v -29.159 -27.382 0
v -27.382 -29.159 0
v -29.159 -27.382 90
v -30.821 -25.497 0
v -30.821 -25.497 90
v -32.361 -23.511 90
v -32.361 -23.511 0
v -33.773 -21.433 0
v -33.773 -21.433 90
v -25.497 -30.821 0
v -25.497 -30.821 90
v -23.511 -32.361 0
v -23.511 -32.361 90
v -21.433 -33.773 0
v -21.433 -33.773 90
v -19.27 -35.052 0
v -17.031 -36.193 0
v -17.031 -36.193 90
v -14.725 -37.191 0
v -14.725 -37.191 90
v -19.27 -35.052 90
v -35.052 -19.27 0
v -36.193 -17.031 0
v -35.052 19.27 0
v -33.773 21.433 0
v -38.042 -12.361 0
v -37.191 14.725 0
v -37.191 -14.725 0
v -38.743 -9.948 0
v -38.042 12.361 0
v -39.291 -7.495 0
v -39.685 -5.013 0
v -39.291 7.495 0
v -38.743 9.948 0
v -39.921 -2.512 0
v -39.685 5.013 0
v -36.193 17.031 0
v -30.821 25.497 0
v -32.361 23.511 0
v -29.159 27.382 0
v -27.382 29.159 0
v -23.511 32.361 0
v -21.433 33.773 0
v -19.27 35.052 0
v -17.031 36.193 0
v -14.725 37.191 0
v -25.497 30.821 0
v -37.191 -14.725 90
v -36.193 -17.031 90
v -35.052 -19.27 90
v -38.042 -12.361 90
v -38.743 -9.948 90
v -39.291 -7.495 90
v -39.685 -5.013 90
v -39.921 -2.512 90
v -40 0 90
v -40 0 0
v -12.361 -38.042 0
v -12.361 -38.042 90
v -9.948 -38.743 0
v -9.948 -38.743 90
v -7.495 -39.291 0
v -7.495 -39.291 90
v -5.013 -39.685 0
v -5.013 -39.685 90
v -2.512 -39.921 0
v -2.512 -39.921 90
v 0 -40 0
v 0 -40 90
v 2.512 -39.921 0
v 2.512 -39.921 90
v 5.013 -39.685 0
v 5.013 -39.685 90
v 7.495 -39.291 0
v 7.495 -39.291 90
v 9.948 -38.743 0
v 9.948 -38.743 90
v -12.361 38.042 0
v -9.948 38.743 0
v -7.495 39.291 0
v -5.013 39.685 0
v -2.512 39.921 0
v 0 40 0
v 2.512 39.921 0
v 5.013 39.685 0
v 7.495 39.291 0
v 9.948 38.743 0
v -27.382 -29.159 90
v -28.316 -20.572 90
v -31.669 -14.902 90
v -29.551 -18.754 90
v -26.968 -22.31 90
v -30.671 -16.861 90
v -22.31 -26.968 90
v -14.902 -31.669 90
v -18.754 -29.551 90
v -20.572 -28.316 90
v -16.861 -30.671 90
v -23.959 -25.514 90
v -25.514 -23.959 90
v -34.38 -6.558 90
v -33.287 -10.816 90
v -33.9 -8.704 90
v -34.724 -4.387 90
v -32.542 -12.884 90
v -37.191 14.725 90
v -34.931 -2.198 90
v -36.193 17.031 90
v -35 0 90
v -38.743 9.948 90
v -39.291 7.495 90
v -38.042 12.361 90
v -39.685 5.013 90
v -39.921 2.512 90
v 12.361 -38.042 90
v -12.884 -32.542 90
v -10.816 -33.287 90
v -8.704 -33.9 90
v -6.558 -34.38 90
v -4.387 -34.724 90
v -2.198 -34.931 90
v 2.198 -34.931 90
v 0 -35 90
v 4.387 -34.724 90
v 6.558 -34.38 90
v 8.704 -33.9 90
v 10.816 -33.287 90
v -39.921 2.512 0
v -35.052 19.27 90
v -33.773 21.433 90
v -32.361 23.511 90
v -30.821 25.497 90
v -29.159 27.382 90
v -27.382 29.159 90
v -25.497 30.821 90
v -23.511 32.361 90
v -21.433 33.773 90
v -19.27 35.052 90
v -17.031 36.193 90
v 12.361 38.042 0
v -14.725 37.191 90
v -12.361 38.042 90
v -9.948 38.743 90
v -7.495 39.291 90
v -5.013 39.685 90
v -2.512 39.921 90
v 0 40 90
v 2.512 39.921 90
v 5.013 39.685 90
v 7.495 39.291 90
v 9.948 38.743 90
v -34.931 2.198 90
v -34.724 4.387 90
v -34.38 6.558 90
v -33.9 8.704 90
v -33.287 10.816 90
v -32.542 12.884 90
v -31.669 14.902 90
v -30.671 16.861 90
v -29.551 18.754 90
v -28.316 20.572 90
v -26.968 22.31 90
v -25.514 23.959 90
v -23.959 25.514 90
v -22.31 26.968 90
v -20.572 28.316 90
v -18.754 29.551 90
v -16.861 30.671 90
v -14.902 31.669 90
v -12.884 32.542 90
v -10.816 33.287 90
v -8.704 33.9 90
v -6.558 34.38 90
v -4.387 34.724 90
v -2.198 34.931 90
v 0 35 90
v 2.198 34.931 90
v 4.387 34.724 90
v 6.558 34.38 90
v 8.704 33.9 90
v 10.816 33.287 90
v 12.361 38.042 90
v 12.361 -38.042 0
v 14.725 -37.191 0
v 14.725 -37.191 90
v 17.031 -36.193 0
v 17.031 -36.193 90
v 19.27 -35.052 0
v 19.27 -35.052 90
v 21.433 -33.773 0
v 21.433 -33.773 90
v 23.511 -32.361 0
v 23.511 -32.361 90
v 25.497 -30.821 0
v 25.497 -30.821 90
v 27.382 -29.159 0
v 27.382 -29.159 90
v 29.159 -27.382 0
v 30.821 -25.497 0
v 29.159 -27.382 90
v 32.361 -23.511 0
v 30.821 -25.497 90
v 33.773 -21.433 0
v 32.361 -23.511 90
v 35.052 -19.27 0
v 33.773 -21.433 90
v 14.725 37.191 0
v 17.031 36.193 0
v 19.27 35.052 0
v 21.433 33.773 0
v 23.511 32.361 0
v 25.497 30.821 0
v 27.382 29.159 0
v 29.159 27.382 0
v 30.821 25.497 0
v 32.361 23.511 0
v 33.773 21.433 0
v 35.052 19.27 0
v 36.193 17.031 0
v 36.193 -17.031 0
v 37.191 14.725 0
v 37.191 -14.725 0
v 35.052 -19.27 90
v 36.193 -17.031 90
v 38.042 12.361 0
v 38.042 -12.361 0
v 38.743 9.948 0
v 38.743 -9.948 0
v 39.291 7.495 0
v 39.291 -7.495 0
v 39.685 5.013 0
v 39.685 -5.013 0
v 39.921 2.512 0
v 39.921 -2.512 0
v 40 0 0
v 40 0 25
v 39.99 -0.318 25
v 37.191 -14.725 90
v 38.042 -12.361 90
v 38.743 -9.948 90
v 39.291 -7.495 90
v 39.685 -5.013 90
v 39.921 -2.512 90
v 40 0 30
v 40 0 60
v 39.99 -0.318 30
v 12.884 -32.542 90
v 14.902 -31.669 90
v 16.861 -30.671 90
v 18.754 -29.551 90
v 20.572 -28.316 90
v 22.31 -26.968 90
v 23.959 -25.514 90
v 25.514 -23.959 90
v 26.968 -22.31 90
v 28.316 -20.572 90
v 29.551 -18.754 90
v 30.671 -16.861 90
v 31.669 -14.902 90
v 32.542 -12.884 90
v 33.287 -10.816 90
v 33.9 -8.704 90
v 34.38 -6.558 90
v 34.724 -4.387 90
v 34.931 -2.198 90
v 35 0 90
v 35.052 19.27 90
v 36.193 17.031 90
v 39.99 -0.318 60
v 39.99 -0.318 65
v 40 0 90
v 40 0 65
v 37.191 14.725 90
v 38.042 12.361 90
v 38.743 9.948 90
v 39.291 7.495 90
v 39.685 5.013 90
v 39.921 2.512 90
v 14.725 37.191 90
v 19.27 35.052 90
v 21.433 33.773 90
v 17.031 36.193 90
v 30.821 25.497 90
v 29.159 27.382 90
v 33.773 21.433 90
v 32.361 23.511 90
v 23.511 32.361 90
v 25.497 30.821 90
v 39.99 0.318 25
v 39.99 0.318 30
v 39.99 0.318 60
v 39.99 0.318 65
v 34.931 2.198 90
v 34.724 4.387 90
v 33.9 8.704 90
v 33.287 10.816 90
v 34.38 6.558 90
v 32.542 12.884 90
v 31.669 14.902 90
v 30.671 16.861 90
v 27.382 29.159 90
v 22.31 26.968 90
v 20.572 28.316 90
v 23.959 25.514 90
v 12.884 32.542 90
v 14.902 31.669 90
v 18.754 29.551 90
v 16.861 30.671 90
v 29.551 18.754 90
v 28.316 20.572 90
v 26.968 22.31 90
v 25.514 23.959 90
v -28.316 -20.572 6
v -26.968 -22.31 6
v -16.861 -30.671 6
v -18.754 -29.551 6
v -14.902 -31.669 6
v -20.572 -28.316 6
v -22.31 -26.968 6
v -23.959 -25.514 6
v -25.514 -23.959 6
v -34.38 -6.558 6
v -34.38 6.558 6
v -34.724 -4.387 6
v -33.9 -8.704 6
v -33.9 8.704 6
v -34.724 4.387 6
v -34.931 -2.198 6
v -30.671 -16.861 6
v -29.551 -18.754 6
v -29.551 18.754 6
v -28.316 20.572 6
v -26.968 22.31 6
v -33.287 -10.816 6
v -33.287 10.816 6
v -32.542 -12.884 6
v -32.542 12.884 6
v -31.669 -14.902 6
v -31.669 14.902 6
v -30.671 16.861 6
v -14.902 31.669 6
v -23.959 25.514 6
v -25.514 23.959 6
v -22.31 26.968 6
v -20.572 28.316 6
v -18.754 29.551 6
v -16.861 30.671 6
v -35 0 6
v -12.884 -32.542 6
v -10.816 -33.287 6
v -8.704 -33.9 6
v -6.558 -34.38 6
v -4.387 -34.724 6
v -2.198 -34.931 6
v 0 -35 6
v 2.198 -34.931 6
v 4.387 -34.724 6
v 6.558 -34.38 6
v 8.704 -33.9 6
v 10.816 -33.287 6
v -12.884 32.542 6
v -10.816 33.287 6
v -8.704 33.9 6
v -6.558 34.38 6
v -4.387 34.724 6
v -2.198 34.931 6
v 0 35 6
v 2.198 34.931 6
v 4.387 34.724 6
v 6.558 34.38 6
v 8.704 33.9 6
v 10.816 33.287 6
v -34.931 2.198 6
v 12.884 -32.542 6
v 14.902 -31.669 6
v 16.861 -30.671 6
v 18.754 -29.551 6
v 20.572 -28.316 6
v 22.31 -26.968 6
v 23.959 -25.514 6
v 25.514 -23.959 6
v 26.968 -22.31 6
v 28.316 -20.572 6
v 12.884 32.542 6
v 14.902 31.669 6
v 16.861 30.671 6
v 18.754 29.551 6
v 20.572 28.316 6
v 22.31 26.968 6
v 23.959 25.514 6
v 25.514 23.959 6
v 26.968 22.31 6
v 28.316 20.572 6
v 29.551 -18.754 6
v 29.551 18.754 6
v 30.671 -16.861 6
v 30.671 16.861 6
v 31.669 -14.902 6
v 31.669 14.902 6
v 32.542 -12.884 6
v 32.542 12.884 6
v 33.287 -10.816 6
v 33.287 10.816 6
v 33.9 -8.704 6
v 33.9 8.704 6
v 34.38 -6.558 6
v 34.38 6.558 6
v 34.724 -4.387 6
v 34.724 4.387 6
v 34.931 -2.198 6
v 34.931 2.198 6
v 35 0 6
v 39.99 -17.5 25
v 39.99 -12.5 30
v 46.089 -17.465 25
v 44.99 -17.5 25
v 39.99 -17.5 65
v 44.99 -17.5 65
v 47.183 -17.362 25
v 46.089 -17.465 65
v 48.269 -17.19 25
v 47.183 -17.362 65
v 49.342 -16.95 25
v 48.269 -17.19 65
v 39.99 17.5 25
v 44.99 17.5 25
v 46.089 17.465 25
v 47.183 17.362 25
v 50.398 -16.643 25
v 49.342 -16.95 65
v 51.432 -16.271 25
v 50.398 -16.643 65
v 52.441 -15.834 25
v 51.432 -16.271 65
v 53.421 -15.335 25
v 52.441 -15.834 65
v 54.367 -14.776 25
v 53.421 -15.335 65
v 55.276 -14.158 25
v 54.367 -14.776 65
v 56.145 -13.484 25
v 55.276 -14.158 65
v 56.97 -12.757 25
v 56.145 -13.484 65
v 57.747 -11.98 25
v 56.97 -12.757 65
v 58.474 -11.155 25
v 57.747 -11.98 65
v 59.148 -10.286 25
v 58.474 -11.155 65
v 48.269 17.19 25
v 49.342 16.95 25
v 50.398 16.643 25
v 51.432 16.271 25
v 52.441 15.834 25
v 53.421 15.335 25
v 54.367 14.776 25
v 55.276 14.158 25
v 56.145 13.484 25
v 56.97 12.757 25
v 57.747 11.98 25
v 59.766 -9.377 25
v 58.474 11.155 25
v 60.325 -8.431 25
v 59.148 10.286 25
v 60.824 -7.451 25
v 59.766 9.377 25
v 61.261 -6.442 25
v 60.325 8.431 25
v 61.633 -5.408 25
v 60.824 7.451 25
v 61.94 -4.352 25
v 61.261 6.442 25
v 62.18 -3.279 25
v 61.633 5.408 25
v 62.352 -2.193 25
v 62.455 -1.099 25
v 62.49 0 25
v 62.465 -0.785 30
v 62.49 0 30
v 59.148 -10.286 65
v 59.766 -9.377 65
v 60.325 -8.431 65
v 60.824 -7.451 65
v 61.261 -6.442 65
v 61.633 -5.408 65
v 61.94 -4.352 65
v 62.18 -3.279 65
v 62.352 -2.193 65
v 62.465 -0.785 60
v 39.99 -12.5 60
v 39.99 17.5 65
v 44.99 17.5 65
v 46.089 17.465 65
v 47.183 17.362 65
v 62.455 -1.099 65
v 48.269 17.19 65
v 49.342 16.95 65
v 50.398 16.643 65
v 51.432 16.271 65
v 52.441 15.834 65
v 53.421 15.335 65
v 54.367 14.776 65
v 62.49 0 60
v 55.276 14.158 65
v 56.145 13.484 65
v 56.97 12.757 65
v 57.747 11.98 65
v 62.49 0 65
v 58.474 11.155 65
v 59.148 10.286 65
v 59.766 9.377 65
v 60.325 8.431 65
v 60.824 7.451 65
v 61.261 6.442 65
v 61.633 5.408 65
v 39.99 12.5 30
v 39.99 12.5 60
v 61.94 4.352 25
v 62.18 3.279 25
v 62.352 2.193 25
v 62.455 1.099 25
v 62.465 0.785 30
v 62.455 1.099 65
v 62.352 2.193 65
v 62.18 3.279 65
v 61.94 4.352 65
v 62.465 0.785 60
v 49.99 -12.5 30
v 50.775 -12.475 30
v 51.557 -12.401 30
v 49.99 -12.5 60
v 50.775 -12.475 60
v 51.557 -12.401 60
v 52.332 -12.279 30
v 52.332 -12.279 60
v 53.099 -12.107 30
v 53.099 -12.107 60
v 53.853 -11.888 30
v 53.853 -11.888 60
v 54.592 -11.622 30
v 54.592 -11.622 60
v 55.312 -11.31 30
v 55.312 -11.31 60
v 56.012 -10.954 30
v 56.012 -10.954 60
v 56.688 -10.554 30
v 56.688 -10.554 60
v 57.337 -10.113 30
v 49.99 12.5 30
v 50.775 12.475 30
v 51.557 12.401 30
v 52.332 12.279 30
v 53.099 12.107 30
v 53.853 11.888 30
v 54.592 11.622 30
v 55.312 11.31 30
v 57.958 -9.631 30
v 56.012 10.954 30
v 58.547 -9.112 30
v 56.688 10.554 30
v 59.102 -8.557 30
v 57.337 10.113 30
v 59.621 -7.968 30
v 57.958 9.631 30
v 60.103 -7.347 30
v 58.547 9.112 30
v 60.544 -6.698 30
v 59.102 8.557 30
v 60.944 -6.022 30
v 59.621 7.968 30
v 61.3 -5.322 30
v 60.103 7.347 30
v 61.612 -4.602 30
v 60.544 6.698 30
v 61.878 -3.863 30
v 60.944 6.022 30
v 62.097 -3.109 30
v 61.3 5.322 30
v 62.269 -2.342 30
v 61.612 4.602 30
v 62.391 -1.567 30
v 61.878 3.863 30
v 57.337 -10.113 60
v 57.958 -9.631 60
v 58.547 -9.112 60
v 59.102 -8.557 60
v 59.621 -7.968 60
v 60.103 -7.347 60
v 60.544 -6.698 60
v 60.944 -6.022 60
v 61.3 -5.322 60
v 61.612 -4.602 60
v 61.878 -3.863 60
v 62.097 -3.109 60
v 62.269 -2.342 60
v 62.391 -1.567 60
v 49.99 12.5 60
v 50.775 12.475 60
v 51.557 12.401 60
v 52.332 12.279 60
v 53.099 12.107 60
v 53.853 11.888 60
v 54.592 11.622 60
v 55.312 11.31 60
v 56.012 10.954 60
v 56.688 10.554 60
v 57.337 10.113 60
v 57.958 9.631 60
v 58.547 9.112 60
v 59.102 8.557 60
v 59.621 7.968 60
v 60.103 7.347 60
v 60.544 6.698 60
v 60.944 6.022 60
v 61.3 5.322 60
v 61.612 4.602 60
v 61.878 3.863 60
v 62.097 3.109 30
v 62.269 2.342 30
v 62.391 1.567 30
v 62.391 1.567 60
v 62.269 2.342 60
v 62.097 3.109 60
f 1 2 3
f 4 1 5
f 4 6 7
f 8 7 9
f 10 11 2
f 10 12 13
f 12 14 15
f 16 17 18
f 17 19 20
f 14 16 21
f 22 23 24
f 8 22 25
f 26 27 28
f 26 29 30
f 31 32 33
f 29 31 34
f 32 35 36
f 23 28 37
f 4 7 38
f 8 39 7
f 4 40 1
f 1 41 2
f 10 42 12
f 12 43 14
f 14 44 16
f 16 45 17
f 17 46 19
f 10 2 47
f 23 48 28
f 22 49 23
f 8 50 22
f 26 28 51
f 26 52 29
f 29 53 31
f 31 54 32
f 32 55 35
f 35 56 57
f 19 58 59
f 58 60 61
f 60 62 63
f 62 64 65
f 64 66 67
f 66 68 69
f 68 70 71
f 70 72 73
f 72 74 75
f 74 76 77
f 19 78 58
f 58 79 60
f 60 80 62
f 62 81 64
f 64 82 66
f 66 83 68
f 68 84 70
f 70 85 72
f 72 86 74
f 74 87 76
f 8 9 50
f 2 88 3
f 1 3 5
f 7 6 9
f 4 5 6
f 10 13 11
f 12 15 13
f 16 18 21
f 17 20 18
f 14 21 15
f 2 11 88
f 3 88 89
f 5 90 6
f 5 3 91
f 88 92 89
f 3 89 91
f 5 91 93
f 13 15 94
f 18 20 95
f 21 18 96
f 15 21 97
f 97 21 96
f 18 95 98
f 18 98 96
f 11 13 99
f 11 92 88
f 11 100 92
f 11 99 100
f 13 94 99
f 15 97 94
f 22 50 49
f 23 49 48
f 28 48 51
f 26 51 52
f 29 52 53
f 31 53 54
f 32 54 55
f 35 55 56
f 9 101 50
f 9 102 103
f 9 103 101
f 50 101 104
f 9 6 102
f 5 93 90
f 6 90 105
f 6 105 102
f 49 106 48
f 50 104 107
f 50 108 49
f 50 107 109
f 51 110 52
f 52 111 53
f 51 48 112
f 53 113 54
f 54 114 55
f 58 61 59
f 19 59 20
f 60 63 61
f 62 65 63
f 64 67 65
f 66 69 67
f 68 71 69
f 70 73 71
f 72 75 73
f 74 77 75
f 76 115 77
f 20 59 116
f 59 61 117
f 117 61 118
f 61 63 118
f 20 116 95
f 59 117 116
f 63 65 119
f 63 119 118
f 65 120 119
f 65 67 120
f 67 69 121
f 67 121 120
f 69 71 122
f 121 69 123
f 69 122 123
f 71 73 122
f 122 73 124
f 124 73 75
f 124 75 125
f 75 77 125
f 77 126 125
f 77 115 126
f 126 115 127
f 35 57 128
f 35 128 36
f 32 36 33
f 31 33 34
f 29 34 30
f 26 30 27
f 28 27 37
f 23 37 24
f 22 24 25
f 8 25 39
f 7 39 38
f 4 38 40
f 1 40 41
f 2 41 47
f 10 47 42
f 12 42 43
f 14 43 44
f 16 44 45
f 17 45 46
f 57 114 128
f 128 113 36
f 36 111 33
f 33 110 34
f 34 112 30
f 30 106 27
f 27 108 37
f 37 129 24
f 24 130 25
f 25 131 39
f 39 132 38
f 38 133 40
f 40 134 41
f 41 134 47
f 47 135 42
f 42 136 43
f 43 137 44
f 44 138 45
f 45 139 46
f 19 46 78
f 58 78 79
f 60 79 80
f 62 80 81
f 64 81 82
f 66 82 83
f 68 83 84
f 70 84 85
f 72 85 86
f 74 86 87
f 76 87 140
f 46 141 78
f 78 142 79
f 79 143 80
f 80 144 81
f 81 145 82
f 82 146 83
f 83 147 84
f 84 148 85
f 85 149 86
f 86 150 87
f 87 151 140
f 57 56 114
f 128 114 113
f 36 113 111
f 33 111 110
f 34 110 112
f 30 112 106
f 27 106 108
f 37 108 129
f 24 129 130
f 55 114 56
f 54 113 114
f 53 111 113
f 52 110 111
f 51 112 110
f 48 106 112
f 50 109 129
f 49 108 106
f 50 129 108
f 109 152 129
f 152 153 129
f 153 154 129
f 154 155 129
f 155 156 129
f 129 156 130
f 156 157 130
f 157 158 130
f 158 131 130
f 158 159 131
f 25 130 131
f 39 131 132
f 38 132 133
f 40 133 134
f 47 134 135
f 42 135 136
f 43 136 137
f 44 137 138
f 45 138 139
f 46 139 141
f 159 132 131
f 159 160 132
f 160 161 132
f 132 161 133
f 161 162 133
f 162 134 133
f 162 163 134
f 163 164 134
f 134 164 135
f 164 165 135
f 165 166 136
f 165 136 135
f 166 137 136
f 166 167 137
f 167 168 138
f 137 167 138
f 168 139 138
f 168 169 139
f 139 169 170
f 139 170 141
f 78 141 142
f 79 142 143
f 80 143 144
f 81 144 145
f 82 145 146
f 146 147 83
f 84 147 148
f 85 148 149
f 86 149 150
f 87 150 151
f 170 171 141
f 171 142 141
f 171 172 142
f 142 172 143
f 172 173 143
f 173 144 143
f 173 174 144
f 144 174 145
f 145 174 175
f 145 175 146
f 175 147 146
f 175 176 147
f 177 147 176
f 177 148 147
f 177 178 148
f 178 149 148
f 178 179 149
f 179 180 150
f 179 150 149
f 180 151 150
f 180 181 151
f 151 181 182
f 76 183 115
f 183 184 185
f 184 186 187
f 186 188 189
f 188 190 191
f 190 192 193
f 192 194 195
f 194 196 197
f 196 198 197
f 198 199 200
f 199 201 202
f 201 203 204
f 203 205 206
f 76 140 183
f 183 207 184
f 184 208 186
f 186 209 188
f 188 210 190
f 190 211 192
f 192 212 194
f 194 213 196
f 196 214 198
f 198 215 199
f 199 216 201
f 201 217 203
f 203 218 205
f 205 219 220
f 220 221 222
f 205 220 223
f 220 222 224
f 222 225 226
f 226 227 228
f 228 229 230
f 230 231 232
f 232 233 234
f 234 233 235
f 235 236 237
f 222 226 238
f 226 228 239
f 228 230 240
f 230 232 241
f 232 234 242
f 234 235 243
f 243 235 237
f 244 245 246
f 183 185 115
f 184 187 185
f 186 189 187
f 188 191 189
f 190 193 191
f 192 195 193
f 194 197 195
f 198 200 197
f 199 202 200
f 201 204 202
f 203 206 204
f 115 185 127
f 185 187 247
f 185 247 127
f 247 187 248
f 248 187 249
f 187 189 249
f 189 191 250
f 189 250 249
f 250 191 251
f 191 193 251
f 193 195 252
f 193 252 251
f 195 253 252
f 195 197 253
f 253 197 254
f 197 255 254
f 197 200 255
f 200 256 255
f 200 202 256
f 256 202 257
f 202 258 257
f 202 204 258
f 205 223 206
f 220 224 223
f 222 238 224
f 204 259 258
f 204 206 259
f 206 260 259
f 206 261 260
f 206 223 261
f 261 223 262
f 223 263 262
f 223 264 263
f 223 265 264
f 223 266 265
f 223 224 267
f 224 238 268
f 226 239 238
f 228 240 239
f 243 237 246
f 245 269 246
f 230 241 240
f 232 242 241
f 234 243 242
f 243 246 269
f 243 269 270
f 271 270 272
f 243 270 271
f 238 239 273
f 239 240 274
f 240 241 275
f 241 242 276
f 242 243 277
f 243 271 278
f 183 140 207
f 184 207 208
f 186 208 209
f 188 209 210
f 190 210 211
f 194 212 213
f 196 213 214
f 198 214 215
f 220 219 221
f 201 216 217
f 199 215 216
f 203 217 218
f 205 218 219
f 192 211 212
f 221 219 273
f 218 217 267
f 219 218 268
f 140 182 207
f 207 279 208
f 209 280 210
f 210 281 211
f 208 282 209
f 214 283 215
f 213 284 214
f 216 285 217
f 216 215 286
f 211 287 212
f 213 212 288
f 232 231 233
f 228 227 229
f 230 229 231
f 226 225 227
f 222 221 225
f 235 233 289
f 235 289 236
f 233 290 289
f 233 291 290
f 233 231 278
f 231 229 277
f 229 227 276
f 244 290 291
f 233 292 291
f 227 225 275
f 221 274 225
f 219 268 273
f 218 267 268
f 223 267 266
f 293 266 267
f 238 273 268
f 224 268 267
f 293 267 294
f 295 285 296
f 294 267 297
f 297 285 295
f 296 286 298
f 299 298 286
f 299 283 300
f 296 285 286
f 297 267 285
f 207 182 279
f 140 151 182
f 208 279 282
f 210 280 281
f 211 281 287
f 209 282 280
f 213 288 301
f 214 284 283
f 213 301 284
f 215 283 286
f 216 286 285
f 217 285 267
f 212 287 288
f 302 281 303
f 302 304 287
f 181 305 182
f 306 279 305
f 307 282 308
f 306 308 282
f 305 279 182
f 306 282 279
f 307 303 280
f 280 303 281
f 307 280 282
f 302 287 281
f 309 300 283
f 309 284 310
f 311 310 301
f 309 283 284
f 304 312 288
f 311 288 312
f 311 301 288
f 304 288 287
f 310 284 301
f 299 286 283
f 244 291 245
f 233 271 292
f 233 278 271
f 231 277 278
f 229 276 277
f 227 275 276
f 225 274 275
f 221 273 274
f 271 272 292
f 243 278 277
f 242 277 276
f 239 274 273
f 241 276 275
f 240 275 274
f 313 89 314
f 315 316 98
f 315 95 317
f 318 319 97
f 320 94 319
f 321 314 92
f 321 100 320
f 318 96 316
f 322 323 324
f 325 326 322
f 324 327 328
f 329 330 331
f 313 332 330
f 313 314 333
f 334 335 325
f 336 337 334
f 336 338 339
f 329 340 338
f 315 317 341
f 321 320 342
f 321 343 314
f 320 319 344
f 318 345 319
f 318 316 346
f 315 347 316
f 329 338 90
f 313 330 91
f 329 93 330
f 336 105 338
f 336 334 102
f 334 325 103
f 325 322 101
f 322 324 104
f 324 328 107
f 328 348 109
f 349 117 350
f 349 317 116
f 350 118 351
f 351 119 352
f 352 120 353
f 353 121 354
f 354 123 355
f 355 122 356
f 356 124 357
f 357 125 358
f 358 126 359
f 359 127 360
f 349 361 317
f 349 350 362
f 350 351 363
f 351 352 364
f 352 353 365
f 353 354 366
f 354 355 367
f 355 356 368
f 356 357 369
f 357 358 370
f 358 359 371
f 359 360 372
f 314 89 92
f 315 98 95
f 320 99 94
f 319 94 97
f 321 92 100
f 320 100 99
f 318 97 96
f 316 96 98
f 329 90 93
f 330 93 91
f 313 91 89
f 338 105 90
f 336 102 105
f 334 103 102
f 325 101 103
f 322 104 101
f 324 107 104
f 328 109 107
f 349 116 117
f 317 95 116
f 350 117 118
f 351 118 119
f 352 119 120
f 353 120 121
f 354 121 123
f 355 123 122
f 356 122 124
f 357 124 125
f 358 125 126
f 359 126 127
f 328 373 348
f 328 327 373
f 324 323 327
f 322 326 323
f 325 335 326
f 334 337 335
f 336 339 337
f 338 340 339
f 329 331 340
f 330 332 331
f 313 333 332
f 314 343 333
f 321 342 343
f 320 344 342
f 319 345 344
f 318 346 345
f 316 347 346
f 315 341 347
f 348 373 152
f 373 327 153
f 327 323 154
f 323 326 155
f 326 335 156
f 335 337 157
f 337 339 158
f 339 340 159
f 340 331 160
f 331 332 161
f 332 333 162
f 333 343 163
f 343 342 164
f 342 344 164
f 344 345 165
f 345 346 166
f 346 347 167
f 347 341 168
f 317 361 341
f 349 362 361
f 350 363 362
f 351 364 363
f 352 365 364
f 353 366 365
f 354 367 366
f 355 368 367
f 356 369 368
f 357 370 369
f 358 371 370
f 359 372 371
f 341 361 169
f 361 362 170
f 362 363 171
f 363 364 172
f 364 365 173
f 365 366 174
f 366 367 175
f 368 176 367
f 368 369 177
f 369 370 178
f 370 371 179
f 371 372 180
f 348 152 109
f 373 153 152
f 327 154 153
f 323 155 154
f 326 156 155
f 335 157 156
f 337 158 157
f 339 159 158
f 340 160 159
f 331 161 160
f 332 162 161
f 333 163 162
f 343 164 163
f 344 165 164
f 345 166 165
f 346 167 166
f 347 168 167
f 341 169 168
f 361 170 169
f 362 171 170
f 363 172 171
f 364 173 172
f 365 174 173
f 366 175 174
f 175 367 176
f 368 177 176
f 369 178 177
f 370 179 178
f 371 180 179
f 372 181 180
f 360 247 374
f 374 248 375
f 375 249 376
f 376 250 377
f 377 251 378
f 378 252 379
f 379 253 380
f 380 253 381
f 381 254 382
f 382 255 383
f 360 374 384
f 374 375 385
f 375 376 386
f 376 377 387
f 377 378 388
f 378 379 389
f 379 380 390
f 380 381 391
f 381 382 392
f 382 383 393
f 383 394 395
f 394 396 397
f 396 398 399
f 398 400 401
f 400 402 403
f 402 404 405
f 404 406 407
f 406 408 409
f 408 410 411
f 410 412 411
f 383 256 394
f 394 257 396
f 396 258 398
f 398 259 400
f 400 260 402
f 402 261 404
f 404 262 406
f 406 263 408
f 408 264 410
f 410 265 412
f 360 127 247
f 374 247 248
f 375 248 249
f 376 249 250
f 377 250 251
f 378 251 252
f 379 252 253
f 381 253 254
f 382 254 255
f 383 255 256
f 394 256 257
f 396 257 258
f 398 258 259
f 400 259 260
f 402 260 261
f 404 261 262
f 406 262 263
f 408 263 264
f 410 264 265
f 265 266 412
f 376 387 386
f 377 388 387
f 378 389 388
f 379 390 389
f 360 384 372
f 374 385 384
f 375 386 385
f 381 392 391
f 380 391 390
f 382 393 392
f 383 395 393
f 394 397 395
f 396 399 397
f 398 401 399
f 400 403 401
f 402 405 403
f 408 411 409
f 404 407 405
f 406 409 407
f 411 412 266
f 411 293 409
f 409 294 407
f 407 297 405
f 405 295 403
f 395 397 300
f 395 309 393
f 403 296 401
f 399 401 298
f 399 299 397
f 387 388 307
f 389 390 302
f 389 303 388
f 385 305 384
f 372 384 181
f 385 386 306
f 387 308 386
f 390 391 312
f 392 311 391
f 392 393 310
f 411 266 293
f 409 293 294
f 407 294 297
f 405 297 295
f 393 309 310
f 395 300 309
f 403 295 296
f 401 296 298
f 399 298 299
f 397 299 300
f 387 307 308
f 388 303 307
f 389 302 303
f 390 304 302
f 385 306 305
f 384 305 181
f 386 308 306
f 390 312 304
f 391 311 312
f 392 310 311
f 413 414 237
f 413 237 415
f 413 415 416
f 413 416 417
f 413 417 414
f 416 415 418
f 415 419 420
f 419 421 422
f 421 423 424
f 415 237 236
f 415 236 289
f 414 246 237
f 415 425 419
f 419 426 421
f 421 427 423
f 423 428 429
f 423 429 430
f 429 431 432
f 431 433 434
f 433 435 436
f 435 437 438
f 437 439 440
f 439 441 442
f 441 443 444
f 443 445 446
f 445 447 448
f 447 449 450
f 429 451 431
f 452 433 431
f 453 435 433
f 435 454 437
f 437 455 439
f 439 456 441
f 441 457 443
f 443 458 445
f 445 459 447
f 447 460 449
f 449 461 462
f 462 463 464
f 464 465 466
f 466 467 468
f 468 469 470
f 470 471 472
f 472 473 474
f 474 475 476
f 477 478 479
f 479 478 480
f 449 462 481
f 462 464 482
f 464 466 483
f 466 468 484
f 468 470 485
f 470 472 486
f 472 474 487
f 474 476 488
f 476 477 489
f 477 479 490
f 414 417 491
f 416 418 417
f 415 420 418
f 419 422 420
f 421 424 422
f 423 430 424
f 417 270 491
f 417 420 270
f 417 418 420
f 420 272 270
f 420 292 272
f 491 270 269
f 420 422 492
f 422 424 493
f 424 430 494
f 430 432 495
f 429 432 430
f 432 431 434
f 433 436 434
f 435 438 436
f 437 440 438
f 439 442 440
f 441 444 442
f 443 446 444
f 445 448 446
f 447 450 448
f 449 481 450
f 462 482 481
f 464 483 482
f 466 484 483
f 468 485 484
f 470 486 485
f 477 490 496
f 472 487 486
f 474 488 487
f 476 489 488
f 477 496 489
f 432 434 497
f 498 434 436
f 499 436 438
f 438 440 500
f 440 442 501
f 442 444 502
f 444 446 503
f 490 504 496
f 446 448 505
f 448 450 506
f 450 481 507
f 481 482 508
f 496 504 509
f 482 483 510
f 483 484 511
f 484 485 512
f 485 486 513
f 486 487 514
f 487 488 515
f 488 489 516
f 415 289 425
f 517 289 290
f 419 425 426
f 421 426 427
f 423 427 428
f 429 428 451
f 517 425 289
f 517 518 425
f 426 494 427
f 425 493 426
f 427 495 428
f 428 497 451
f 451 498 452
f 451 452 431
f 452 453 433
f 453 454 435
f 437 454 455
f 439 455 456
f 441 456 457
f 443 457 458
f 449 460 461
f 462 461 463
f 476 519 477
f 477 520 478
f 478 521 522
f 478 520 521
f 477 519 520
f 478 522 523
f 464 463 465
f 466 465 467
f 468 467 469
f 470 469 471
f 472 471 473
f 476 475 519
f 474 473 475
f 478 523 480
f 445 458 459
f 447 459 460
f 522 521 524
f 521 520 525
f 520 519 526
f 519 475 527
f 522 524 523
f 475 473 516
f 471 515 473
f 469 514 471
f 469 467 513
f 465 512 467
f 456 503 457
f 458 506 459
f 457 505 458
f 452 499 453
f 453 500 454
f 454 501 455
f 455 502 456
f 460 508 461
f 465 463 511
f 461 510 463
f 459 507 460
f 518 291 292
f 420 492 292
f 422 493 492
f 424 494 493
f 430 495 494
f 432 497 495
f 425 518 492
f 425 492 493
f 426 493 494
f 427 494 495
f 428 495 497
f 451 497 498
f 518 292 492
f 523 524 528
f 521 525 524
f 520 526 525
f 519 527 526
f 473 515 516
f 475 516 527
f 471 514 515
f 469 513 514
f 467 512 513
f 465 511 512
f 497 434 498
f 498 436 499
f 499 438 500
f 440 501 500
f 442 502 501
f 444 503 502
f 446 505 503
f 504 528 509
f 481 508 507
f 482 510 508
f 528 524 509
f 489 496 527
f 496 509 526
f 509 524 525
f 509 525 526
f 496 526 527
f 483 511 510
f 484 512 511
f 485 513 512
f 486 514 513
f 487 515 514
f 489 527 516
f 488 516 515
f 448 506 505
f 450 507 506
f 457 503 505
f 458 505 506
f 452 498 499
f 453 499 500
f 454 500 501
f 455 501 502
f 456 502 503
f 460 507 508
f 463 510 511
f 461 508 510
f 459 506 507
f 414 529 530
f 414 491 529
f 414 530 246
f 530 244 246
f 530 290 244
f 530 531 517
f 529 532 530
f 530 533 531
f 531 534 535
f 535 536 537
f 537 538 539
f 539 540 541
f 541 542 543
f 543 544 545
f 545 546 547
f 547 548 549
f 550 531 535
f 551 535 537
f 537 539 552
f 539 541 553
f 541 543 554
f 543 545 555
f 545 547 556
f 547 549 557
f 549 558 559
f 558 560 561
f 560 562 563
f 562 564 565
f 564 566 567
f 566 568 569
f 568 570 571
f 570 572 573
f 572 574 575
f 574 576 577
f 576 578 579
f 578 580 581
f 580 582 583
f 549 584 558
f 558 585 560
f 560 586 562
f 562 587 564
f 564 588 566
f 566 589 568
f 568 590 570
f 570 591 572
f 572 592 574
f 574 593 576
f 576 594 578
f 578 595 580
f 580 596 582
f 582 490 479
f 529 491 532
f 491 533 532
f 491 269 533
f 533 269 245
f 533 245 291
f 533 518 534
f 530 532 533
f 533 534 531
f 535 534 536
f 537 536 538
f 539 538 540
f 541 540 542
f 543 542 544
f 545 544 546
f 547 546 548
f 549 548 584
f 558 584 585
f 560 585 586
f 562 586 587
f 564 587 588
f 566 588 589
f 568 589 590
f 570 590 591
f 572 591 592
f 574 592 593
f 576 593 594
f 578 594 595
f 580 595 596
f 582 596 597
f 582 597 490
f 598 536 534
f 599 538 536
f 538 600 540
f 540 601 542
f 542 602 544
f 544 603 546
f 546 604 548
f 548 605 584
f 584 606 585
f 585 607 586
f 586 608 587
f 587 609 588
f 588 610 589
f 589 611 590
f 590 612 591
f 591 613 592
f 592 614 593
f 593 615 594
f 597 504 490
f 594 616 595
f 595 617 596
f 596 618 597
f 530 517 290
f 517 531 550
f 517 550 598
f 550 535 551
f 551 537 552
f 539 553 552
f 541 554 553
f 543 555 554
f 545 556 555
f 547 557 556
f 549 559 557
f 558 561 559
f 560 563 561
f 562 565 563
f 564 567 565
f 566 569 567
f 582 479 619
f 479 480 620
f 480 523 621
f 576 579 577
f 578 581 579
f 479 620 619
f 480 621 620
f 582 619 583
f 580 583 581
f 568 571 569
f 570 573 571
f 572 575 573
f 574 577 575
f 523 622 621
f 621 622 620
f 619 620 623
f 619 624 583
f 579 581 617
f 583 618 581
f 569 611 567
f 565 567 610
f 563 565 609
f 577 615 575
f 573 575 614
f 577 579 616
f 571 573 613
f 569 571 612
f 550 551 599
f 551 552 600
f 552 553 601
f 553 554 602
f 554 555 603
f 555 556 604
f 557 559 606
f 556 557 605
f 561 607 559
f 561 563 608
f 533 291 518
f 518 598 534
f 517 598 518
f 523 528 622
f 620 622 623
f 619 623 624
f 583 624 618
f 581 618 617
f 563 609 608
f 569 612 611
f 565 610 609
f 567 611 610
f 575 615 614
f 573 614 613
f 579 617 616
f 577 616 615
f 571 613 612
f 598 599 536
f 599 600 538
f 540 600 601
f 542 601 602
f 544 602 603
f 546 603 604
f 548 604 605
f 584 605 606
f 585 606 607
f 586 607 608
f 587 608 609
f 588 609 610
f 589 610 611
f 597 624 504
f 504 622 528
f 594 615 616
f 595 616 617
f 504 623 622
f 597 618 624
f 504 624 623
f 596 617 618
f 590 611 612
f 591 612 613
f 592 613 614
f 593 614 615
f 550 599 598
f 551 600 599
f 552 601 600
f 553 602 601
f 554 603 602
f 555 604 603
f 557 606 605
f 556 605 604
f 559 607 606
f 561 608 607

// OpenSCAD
// Mug with oriented D-shaped handle ( +X direction )

$fn = 100;                        // resolution for round parts

// ------- Mug parameters -------
outer_d   = 80;                   // outer diameter
inner_d   = 70;                   // inner diameter
height    = 90;                   // total height
bottom_th = 6;                    // bottom thickness
wall_th   = (outer_d - inner_d)/2; // side wall thickness (5 mm)

// ------- Handle parameters -------
handle_inner_h = 30;              // inner height (Z)
handle_inner_w = 25;              // inner width (Y)
handle_wall    = wall_th;         // handle wall thickness

handle_h   = handle_inner_h + 2*handle_wall;            // total handle height
outer_r    = handle_inner_w/2 + handle_wall;            // outer semicircle radius
inner_r    = outer_r - handle_wall;                     // inner semicircle radius
offset_x   = handle_wall;                               // flat-side thickness

fudge = 0.01; // tiny overlap to guarantee union

// ------- 2D D-shape generator -------
module Dshape(r, off){
    union(){
        // flat-side rectangle
        translate([0, -r]) square([off, 2*r], center=false);
        // semicircle (only x >= 0 half)
        intersection(){
            translate([off, 0]) circle(r=r);
            translate([0, -r]) square([2*r + off, 2*r], center=false);
        }
    }
}

// ------- Mug body -------
module mug(){
    difference(){
        cylinder(d=outer_d, h=height);                           // outer shell
        translate([0, 0, bottom_th])
            cylinder(d=inner_d, h=height - bottom_th);           // inner cavity
    }
}

// ------- Handle -------
module handle(){
    difference(){
        // outer volume
        linear_extrude(height=handle_h, convexity=10)
            Dshape(outer_r, offset_x);
        // inner void
        translate([0, 0, handle_wall])
            linear_extrude(height=handle_inner_h, convexity=10)
                Dshape(inner_r, offset_x + handle_wall);
    }
}

// ------- Assembly -------
union(){
    mug();
    translate([outer_d/2 - fudge, 0, (height - handle_h)/2])
        handle();
}
